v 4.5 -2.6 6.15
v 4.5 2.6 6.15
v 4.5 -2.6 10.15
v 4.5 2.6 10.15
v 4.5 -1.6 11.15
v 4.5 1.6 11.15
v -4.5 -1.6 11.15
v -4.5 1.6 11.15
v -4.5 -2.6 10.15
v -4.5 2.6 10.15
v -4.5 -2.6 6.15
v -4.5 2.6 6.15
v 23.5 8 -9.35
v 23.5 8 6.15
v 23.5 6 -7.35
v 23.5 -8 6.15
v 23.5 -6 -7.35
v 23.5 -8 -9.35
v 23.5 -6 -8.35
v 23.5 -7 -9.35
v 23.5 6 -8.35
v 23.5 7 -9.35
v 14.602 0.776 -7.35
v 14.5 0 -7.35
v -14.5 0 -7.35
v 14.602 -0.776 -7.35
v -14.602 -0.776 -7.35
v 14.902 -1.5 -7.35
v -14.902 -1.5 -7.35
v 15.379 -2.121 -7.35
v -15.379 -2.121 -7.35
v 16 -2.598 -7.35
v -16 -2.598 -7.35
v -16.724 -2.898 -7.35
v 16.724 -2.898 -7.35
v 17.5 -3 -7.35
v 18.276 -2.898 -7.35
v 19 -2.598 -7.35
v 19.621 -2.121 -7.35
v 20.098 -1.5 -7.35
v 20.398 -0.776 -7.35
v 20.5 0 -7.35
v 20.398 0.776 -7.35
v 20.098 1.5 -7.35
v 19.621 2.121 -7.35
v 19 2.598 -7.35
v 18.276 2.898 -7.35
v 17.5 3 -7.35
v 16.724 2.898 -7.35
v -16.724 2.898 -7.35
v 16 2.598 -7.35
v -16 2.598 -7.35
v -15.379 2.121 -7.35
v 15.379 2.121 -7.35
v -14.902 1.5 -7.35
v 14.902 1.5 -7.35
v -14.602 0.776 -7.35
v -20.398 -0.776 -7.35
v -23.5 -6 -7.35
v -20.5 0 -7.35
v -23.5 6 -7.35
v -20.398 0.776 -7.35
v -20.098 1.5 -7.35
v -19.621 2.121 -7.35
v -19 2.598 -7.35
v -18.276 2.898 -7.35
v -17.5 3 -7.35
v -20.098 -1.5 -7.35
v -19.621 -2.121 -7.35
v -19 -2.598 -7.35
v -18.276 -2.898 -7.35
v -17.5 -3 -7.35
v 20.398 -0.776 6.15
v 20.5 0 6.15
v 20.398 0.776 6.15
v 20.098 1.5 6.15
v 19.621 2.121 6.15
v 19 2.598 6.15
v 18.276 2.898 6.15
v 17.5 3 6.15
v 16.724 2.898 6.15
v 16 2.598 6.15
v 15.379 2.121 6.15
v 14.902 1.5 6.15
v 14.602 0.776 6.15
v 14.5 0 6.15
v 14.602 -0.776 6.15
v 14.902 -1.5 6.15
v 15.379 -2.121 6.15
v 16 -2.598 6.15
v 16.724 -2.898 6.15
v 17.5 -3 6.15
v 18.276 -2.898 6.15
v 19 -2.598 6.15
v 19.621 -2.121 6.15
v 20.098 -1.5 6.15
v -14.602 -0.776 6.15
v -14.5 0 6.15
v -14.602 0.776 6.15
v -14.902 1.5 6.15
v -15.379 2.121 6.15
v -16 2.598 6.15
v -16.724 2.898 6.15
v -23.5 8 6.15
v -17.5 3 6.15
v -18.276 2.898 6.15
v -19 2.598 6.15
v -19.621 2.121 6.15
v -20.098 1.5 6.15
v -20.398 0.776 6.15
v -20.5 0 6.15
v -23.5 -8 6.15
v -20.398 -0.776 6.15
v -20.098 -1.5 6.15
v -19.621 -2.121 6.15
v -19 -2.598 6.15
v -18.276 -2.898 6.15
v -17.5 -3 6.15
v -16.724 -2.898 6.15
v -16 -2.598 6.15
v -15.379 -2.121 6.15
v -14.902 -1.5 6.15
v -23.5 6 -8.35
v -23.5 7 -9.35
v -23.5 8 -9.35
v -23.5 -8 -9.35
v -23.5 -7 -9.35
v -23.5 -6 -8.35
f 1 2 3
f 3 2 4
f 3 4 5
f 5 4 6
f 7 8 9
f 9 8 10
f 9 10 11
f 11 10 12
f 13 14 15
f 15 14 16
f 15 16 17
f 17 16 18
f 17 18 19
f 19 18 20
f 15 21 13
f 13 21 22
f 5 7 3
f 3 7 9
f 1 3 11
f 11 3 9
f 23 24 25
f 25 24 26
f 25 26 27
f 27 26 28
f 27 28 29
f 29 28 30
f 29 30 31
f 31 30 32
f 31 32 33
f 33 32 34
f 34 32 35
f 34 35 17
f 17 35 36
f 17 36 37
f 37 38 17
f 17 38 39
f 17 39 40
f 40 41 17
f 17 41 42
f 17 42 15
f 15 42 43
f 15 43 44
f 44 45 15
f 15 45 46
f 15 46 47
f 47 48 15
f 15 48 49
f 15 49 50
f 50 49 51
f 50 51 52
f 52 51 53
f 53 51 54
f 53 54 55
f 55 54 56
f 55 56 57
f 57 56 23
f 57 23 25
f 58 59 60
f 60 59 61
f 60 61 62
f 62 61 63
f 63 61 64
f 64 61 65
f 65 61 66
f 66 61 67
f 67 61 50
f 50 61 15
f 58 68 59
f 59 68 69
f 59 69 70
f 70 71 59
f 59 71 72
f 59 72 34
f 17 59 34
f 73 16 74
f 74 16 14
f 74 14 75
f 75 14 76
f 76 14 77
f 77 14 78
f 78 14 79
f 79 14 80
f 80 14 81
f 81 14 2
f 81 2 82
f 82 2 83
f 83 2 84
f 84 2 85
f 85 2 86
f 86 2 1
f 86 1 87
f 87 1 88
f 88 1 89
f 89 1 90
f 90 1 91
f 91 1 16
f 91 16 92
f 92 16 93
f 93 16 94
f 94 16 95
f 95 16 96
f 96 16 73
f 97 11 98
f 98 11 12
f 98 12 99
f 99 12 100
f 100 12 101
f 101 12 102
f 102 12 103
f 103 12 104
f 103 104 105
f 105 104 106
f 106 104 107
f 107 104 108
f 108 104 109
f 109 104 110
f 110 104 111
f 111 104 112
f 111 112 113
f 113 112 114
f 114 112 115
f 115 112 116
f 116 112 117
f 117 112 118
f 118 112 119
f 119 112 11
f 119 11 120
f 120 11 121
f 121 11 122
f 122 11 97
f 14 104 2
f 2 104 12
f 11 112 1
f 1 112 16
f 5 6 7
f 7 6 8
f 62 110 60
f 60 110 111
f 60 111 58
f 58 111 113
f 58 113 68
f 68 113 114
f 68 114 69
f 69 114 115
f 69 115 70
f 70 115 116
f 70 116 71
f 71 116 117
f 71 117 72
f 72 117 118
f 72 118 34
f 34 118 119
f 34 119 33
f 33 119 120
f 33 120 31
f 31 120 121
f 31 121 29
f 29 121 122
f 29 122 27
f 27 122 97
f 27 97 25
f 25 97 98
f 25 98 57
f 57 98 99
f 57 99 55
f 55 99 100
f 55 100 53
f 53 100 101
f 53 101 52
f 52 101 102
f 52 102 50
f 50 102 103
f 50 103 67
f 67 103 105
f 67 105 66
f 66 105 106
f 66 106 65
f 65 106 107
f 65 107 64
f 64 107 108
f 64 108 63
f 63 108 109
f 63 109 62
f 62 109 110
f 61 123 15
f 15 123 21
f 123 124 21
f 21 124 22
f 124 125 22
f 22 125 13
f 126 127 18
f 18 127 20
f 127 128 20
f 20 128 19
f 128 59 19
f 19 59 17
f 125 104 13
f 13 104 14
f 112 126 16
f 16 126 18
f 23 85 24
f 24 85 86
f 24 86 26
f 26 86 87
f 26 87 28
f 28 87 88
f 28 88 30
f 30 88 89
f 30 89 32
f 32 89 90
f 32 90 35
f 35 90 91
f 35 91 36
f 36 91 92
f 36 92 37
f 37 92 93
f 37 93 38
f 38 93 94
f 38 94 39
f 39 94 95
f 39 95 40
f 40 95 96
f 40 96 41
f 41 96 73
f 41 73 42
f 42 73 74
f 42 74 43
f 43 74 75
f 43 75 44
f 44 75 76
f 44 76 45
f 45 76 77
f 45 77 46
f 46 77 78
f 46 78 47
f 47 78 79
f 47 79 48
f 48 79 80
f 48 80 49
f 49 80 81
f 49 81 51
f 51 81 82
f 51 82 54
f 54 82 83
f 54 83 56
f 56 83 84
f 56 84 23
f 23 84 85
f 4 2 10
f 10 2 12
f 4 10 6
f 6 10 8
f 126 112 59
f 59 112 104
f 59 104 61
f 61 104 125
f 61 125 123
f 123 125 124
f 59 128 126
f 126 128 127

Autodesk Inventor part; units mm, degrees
ref_plane "YZ Plane" through (0, 0, 0) normal (1, 0, 0) x (0, 1, 0)
ref_plane "XZ Plane" through (0, 0, 0) normal (0, 1, 0) x (-1, 0, 0)
ref_plane "XY Plane" through (0, 0, 0) normal (0, 0, 1) x (1, 0, 0)
ref_plane "작업 평면1" through (23.5, -8, -2) normal (1, 0, 0) x (0, 0, -1)
sketch "스케치1" plane through (23.5, -8, -2) normal (1, 0, 0) x (0, 0, -1)
  line L0 (0, 16) -> (-8.15, 16) projected
  line L1 (-8.15, 16) -> (-8.15, 10.6) projected
  line L2 (-8.15, 10.6) -> (-12.15, 10.6) projected
  line L3 (-13.15, 9.6) -> (-12.15, 10.6) projected
  line L4 (-13.15, 9.6) -> (-13.15, 6.4) projected
  line L5 (-12.15, 5.4) -> (-13.15, 6.4) projected
  line L6 (-12.15, 5.4) -> (-8.15, 5.4) projected
  line L7 (-8.15, 5.4) -> (-8.15, 0) projected
  line L8 (-8.15, 0) -> (0, 0) projected
  line L9 (0, 16) -> (7.35, 16)
  line L10 (7.35, 16) -> (7.35, 15)
  line L11 (7.35, 15) -> (6.35, 14)
  line L12 (5.35, 14) -> (5.35, 2)
  line L13 (5.35, 14) -> (6.35, 14)
  line L14 (0, 0) -> (7.35, 0)
  line L15 (7.35, 0) -> (7.35, 1)
  line L16 (7.35, 1) -> (6.35, 2)
  line L17 (5.35, 2) -> (6.35, 2)
  line L18 (0, 16) -> (-8.15, 16)
  line L19 (-8.15, 10.6) -> (-12.15, 10.6) projected
  line L20 (-8.15, 10.6) -> (-12.15, 10.6)
  line L21 (-12.15, 10.6) -> (-13.15, 9.6)
  line L22 (-13.15, 6.4) -> (-12.15, 5.4)
  point P0 (-2, 8)
  dimension "d1" = 7.35
sketch "스케치2" plane through (-23.5, 8, 6.15) normal (0, 0, 1) x (1, 0, 0)
  arc A0 (7.9209, -9.6) -> (7.9209, -6.4) centre (6, -8) ccw projected
  line L0 (39.0791, -9.6) -> (7.9209, -9.6) projected
  circle A1 centre (6, -8) radius 2.5
  circle A2 centre (41, -8) radius 2.5 projected
  circle A3 centre (41, -8) radius 2.5
  point P0 (23.5, -8)
  point P1 (7.9209, -6.4)
extrude "돌출1" add sketch "스케치1" against normal up to surface (47 mm away)
extrude "돌출2" cut sketch "스케치2" along normal mid plane 50
sketch "스케치3" plane through (-15.5791, 1.6, 11.15) normal (0, 0, 1) x (1, 0, 0)
  line L0 (15.5791, -14.4593) -> (15.5791, 15.5737)
  line L1 (-7.9209, 4.4) -> (-7.9209, -7.6) projected
  line L2 (-7.9209, 4.4) -> (11.0791, 4.4)
  line L3 (11.0791, 4.4) -> (11.0791, -7.6)
  line L4 (11.0791, -7.6) -> (-7.9209, -7.6)
  line L5 (-7.9209, -7.6) -> (-7.9209, 4.4)
  line L6 (39.0791, 4.4) -> (39.0791, -7.6)
  line L7 (39.0791, 4.4) -> (20.0791, 4.4)
  line L8 (20.0791, 4.4) -> (20.0791, -7.6)
  line L9 (20.0791, -7.6) -> (39.0791, -7.6)
  line L10 (39.0791, -7.6) -> (39.0791, 4.4)
  point P0 (15.5791, -1.6)
  dimension "d9" = 19
extrude "돌출3" cut sketch "스케치3" against normal up to surface (5 mm away)
sketch "스케치4" plane through (-23.5, 8, 6.15) normal (0, 0, 1) x (1, 0, 0)
  circle A0 centre (6, -8) radius 2.5 projected
  circle A1 centre (6, -8) radius 3
  circle A2 centre (41, -8) radius 2.5 projected
  circle A3 centre (41, -8) radius 3
  point P0 (23.5, -8)
  dimension "d10" = 6
  dimension "d11" = 6
extrude "돌출4" cut sketch "스케치4" against normal up to surface (13.5 mm away) contours A0 | A1 | A2 | A3
properties part number "Bearing Spacer_1mmUP"
